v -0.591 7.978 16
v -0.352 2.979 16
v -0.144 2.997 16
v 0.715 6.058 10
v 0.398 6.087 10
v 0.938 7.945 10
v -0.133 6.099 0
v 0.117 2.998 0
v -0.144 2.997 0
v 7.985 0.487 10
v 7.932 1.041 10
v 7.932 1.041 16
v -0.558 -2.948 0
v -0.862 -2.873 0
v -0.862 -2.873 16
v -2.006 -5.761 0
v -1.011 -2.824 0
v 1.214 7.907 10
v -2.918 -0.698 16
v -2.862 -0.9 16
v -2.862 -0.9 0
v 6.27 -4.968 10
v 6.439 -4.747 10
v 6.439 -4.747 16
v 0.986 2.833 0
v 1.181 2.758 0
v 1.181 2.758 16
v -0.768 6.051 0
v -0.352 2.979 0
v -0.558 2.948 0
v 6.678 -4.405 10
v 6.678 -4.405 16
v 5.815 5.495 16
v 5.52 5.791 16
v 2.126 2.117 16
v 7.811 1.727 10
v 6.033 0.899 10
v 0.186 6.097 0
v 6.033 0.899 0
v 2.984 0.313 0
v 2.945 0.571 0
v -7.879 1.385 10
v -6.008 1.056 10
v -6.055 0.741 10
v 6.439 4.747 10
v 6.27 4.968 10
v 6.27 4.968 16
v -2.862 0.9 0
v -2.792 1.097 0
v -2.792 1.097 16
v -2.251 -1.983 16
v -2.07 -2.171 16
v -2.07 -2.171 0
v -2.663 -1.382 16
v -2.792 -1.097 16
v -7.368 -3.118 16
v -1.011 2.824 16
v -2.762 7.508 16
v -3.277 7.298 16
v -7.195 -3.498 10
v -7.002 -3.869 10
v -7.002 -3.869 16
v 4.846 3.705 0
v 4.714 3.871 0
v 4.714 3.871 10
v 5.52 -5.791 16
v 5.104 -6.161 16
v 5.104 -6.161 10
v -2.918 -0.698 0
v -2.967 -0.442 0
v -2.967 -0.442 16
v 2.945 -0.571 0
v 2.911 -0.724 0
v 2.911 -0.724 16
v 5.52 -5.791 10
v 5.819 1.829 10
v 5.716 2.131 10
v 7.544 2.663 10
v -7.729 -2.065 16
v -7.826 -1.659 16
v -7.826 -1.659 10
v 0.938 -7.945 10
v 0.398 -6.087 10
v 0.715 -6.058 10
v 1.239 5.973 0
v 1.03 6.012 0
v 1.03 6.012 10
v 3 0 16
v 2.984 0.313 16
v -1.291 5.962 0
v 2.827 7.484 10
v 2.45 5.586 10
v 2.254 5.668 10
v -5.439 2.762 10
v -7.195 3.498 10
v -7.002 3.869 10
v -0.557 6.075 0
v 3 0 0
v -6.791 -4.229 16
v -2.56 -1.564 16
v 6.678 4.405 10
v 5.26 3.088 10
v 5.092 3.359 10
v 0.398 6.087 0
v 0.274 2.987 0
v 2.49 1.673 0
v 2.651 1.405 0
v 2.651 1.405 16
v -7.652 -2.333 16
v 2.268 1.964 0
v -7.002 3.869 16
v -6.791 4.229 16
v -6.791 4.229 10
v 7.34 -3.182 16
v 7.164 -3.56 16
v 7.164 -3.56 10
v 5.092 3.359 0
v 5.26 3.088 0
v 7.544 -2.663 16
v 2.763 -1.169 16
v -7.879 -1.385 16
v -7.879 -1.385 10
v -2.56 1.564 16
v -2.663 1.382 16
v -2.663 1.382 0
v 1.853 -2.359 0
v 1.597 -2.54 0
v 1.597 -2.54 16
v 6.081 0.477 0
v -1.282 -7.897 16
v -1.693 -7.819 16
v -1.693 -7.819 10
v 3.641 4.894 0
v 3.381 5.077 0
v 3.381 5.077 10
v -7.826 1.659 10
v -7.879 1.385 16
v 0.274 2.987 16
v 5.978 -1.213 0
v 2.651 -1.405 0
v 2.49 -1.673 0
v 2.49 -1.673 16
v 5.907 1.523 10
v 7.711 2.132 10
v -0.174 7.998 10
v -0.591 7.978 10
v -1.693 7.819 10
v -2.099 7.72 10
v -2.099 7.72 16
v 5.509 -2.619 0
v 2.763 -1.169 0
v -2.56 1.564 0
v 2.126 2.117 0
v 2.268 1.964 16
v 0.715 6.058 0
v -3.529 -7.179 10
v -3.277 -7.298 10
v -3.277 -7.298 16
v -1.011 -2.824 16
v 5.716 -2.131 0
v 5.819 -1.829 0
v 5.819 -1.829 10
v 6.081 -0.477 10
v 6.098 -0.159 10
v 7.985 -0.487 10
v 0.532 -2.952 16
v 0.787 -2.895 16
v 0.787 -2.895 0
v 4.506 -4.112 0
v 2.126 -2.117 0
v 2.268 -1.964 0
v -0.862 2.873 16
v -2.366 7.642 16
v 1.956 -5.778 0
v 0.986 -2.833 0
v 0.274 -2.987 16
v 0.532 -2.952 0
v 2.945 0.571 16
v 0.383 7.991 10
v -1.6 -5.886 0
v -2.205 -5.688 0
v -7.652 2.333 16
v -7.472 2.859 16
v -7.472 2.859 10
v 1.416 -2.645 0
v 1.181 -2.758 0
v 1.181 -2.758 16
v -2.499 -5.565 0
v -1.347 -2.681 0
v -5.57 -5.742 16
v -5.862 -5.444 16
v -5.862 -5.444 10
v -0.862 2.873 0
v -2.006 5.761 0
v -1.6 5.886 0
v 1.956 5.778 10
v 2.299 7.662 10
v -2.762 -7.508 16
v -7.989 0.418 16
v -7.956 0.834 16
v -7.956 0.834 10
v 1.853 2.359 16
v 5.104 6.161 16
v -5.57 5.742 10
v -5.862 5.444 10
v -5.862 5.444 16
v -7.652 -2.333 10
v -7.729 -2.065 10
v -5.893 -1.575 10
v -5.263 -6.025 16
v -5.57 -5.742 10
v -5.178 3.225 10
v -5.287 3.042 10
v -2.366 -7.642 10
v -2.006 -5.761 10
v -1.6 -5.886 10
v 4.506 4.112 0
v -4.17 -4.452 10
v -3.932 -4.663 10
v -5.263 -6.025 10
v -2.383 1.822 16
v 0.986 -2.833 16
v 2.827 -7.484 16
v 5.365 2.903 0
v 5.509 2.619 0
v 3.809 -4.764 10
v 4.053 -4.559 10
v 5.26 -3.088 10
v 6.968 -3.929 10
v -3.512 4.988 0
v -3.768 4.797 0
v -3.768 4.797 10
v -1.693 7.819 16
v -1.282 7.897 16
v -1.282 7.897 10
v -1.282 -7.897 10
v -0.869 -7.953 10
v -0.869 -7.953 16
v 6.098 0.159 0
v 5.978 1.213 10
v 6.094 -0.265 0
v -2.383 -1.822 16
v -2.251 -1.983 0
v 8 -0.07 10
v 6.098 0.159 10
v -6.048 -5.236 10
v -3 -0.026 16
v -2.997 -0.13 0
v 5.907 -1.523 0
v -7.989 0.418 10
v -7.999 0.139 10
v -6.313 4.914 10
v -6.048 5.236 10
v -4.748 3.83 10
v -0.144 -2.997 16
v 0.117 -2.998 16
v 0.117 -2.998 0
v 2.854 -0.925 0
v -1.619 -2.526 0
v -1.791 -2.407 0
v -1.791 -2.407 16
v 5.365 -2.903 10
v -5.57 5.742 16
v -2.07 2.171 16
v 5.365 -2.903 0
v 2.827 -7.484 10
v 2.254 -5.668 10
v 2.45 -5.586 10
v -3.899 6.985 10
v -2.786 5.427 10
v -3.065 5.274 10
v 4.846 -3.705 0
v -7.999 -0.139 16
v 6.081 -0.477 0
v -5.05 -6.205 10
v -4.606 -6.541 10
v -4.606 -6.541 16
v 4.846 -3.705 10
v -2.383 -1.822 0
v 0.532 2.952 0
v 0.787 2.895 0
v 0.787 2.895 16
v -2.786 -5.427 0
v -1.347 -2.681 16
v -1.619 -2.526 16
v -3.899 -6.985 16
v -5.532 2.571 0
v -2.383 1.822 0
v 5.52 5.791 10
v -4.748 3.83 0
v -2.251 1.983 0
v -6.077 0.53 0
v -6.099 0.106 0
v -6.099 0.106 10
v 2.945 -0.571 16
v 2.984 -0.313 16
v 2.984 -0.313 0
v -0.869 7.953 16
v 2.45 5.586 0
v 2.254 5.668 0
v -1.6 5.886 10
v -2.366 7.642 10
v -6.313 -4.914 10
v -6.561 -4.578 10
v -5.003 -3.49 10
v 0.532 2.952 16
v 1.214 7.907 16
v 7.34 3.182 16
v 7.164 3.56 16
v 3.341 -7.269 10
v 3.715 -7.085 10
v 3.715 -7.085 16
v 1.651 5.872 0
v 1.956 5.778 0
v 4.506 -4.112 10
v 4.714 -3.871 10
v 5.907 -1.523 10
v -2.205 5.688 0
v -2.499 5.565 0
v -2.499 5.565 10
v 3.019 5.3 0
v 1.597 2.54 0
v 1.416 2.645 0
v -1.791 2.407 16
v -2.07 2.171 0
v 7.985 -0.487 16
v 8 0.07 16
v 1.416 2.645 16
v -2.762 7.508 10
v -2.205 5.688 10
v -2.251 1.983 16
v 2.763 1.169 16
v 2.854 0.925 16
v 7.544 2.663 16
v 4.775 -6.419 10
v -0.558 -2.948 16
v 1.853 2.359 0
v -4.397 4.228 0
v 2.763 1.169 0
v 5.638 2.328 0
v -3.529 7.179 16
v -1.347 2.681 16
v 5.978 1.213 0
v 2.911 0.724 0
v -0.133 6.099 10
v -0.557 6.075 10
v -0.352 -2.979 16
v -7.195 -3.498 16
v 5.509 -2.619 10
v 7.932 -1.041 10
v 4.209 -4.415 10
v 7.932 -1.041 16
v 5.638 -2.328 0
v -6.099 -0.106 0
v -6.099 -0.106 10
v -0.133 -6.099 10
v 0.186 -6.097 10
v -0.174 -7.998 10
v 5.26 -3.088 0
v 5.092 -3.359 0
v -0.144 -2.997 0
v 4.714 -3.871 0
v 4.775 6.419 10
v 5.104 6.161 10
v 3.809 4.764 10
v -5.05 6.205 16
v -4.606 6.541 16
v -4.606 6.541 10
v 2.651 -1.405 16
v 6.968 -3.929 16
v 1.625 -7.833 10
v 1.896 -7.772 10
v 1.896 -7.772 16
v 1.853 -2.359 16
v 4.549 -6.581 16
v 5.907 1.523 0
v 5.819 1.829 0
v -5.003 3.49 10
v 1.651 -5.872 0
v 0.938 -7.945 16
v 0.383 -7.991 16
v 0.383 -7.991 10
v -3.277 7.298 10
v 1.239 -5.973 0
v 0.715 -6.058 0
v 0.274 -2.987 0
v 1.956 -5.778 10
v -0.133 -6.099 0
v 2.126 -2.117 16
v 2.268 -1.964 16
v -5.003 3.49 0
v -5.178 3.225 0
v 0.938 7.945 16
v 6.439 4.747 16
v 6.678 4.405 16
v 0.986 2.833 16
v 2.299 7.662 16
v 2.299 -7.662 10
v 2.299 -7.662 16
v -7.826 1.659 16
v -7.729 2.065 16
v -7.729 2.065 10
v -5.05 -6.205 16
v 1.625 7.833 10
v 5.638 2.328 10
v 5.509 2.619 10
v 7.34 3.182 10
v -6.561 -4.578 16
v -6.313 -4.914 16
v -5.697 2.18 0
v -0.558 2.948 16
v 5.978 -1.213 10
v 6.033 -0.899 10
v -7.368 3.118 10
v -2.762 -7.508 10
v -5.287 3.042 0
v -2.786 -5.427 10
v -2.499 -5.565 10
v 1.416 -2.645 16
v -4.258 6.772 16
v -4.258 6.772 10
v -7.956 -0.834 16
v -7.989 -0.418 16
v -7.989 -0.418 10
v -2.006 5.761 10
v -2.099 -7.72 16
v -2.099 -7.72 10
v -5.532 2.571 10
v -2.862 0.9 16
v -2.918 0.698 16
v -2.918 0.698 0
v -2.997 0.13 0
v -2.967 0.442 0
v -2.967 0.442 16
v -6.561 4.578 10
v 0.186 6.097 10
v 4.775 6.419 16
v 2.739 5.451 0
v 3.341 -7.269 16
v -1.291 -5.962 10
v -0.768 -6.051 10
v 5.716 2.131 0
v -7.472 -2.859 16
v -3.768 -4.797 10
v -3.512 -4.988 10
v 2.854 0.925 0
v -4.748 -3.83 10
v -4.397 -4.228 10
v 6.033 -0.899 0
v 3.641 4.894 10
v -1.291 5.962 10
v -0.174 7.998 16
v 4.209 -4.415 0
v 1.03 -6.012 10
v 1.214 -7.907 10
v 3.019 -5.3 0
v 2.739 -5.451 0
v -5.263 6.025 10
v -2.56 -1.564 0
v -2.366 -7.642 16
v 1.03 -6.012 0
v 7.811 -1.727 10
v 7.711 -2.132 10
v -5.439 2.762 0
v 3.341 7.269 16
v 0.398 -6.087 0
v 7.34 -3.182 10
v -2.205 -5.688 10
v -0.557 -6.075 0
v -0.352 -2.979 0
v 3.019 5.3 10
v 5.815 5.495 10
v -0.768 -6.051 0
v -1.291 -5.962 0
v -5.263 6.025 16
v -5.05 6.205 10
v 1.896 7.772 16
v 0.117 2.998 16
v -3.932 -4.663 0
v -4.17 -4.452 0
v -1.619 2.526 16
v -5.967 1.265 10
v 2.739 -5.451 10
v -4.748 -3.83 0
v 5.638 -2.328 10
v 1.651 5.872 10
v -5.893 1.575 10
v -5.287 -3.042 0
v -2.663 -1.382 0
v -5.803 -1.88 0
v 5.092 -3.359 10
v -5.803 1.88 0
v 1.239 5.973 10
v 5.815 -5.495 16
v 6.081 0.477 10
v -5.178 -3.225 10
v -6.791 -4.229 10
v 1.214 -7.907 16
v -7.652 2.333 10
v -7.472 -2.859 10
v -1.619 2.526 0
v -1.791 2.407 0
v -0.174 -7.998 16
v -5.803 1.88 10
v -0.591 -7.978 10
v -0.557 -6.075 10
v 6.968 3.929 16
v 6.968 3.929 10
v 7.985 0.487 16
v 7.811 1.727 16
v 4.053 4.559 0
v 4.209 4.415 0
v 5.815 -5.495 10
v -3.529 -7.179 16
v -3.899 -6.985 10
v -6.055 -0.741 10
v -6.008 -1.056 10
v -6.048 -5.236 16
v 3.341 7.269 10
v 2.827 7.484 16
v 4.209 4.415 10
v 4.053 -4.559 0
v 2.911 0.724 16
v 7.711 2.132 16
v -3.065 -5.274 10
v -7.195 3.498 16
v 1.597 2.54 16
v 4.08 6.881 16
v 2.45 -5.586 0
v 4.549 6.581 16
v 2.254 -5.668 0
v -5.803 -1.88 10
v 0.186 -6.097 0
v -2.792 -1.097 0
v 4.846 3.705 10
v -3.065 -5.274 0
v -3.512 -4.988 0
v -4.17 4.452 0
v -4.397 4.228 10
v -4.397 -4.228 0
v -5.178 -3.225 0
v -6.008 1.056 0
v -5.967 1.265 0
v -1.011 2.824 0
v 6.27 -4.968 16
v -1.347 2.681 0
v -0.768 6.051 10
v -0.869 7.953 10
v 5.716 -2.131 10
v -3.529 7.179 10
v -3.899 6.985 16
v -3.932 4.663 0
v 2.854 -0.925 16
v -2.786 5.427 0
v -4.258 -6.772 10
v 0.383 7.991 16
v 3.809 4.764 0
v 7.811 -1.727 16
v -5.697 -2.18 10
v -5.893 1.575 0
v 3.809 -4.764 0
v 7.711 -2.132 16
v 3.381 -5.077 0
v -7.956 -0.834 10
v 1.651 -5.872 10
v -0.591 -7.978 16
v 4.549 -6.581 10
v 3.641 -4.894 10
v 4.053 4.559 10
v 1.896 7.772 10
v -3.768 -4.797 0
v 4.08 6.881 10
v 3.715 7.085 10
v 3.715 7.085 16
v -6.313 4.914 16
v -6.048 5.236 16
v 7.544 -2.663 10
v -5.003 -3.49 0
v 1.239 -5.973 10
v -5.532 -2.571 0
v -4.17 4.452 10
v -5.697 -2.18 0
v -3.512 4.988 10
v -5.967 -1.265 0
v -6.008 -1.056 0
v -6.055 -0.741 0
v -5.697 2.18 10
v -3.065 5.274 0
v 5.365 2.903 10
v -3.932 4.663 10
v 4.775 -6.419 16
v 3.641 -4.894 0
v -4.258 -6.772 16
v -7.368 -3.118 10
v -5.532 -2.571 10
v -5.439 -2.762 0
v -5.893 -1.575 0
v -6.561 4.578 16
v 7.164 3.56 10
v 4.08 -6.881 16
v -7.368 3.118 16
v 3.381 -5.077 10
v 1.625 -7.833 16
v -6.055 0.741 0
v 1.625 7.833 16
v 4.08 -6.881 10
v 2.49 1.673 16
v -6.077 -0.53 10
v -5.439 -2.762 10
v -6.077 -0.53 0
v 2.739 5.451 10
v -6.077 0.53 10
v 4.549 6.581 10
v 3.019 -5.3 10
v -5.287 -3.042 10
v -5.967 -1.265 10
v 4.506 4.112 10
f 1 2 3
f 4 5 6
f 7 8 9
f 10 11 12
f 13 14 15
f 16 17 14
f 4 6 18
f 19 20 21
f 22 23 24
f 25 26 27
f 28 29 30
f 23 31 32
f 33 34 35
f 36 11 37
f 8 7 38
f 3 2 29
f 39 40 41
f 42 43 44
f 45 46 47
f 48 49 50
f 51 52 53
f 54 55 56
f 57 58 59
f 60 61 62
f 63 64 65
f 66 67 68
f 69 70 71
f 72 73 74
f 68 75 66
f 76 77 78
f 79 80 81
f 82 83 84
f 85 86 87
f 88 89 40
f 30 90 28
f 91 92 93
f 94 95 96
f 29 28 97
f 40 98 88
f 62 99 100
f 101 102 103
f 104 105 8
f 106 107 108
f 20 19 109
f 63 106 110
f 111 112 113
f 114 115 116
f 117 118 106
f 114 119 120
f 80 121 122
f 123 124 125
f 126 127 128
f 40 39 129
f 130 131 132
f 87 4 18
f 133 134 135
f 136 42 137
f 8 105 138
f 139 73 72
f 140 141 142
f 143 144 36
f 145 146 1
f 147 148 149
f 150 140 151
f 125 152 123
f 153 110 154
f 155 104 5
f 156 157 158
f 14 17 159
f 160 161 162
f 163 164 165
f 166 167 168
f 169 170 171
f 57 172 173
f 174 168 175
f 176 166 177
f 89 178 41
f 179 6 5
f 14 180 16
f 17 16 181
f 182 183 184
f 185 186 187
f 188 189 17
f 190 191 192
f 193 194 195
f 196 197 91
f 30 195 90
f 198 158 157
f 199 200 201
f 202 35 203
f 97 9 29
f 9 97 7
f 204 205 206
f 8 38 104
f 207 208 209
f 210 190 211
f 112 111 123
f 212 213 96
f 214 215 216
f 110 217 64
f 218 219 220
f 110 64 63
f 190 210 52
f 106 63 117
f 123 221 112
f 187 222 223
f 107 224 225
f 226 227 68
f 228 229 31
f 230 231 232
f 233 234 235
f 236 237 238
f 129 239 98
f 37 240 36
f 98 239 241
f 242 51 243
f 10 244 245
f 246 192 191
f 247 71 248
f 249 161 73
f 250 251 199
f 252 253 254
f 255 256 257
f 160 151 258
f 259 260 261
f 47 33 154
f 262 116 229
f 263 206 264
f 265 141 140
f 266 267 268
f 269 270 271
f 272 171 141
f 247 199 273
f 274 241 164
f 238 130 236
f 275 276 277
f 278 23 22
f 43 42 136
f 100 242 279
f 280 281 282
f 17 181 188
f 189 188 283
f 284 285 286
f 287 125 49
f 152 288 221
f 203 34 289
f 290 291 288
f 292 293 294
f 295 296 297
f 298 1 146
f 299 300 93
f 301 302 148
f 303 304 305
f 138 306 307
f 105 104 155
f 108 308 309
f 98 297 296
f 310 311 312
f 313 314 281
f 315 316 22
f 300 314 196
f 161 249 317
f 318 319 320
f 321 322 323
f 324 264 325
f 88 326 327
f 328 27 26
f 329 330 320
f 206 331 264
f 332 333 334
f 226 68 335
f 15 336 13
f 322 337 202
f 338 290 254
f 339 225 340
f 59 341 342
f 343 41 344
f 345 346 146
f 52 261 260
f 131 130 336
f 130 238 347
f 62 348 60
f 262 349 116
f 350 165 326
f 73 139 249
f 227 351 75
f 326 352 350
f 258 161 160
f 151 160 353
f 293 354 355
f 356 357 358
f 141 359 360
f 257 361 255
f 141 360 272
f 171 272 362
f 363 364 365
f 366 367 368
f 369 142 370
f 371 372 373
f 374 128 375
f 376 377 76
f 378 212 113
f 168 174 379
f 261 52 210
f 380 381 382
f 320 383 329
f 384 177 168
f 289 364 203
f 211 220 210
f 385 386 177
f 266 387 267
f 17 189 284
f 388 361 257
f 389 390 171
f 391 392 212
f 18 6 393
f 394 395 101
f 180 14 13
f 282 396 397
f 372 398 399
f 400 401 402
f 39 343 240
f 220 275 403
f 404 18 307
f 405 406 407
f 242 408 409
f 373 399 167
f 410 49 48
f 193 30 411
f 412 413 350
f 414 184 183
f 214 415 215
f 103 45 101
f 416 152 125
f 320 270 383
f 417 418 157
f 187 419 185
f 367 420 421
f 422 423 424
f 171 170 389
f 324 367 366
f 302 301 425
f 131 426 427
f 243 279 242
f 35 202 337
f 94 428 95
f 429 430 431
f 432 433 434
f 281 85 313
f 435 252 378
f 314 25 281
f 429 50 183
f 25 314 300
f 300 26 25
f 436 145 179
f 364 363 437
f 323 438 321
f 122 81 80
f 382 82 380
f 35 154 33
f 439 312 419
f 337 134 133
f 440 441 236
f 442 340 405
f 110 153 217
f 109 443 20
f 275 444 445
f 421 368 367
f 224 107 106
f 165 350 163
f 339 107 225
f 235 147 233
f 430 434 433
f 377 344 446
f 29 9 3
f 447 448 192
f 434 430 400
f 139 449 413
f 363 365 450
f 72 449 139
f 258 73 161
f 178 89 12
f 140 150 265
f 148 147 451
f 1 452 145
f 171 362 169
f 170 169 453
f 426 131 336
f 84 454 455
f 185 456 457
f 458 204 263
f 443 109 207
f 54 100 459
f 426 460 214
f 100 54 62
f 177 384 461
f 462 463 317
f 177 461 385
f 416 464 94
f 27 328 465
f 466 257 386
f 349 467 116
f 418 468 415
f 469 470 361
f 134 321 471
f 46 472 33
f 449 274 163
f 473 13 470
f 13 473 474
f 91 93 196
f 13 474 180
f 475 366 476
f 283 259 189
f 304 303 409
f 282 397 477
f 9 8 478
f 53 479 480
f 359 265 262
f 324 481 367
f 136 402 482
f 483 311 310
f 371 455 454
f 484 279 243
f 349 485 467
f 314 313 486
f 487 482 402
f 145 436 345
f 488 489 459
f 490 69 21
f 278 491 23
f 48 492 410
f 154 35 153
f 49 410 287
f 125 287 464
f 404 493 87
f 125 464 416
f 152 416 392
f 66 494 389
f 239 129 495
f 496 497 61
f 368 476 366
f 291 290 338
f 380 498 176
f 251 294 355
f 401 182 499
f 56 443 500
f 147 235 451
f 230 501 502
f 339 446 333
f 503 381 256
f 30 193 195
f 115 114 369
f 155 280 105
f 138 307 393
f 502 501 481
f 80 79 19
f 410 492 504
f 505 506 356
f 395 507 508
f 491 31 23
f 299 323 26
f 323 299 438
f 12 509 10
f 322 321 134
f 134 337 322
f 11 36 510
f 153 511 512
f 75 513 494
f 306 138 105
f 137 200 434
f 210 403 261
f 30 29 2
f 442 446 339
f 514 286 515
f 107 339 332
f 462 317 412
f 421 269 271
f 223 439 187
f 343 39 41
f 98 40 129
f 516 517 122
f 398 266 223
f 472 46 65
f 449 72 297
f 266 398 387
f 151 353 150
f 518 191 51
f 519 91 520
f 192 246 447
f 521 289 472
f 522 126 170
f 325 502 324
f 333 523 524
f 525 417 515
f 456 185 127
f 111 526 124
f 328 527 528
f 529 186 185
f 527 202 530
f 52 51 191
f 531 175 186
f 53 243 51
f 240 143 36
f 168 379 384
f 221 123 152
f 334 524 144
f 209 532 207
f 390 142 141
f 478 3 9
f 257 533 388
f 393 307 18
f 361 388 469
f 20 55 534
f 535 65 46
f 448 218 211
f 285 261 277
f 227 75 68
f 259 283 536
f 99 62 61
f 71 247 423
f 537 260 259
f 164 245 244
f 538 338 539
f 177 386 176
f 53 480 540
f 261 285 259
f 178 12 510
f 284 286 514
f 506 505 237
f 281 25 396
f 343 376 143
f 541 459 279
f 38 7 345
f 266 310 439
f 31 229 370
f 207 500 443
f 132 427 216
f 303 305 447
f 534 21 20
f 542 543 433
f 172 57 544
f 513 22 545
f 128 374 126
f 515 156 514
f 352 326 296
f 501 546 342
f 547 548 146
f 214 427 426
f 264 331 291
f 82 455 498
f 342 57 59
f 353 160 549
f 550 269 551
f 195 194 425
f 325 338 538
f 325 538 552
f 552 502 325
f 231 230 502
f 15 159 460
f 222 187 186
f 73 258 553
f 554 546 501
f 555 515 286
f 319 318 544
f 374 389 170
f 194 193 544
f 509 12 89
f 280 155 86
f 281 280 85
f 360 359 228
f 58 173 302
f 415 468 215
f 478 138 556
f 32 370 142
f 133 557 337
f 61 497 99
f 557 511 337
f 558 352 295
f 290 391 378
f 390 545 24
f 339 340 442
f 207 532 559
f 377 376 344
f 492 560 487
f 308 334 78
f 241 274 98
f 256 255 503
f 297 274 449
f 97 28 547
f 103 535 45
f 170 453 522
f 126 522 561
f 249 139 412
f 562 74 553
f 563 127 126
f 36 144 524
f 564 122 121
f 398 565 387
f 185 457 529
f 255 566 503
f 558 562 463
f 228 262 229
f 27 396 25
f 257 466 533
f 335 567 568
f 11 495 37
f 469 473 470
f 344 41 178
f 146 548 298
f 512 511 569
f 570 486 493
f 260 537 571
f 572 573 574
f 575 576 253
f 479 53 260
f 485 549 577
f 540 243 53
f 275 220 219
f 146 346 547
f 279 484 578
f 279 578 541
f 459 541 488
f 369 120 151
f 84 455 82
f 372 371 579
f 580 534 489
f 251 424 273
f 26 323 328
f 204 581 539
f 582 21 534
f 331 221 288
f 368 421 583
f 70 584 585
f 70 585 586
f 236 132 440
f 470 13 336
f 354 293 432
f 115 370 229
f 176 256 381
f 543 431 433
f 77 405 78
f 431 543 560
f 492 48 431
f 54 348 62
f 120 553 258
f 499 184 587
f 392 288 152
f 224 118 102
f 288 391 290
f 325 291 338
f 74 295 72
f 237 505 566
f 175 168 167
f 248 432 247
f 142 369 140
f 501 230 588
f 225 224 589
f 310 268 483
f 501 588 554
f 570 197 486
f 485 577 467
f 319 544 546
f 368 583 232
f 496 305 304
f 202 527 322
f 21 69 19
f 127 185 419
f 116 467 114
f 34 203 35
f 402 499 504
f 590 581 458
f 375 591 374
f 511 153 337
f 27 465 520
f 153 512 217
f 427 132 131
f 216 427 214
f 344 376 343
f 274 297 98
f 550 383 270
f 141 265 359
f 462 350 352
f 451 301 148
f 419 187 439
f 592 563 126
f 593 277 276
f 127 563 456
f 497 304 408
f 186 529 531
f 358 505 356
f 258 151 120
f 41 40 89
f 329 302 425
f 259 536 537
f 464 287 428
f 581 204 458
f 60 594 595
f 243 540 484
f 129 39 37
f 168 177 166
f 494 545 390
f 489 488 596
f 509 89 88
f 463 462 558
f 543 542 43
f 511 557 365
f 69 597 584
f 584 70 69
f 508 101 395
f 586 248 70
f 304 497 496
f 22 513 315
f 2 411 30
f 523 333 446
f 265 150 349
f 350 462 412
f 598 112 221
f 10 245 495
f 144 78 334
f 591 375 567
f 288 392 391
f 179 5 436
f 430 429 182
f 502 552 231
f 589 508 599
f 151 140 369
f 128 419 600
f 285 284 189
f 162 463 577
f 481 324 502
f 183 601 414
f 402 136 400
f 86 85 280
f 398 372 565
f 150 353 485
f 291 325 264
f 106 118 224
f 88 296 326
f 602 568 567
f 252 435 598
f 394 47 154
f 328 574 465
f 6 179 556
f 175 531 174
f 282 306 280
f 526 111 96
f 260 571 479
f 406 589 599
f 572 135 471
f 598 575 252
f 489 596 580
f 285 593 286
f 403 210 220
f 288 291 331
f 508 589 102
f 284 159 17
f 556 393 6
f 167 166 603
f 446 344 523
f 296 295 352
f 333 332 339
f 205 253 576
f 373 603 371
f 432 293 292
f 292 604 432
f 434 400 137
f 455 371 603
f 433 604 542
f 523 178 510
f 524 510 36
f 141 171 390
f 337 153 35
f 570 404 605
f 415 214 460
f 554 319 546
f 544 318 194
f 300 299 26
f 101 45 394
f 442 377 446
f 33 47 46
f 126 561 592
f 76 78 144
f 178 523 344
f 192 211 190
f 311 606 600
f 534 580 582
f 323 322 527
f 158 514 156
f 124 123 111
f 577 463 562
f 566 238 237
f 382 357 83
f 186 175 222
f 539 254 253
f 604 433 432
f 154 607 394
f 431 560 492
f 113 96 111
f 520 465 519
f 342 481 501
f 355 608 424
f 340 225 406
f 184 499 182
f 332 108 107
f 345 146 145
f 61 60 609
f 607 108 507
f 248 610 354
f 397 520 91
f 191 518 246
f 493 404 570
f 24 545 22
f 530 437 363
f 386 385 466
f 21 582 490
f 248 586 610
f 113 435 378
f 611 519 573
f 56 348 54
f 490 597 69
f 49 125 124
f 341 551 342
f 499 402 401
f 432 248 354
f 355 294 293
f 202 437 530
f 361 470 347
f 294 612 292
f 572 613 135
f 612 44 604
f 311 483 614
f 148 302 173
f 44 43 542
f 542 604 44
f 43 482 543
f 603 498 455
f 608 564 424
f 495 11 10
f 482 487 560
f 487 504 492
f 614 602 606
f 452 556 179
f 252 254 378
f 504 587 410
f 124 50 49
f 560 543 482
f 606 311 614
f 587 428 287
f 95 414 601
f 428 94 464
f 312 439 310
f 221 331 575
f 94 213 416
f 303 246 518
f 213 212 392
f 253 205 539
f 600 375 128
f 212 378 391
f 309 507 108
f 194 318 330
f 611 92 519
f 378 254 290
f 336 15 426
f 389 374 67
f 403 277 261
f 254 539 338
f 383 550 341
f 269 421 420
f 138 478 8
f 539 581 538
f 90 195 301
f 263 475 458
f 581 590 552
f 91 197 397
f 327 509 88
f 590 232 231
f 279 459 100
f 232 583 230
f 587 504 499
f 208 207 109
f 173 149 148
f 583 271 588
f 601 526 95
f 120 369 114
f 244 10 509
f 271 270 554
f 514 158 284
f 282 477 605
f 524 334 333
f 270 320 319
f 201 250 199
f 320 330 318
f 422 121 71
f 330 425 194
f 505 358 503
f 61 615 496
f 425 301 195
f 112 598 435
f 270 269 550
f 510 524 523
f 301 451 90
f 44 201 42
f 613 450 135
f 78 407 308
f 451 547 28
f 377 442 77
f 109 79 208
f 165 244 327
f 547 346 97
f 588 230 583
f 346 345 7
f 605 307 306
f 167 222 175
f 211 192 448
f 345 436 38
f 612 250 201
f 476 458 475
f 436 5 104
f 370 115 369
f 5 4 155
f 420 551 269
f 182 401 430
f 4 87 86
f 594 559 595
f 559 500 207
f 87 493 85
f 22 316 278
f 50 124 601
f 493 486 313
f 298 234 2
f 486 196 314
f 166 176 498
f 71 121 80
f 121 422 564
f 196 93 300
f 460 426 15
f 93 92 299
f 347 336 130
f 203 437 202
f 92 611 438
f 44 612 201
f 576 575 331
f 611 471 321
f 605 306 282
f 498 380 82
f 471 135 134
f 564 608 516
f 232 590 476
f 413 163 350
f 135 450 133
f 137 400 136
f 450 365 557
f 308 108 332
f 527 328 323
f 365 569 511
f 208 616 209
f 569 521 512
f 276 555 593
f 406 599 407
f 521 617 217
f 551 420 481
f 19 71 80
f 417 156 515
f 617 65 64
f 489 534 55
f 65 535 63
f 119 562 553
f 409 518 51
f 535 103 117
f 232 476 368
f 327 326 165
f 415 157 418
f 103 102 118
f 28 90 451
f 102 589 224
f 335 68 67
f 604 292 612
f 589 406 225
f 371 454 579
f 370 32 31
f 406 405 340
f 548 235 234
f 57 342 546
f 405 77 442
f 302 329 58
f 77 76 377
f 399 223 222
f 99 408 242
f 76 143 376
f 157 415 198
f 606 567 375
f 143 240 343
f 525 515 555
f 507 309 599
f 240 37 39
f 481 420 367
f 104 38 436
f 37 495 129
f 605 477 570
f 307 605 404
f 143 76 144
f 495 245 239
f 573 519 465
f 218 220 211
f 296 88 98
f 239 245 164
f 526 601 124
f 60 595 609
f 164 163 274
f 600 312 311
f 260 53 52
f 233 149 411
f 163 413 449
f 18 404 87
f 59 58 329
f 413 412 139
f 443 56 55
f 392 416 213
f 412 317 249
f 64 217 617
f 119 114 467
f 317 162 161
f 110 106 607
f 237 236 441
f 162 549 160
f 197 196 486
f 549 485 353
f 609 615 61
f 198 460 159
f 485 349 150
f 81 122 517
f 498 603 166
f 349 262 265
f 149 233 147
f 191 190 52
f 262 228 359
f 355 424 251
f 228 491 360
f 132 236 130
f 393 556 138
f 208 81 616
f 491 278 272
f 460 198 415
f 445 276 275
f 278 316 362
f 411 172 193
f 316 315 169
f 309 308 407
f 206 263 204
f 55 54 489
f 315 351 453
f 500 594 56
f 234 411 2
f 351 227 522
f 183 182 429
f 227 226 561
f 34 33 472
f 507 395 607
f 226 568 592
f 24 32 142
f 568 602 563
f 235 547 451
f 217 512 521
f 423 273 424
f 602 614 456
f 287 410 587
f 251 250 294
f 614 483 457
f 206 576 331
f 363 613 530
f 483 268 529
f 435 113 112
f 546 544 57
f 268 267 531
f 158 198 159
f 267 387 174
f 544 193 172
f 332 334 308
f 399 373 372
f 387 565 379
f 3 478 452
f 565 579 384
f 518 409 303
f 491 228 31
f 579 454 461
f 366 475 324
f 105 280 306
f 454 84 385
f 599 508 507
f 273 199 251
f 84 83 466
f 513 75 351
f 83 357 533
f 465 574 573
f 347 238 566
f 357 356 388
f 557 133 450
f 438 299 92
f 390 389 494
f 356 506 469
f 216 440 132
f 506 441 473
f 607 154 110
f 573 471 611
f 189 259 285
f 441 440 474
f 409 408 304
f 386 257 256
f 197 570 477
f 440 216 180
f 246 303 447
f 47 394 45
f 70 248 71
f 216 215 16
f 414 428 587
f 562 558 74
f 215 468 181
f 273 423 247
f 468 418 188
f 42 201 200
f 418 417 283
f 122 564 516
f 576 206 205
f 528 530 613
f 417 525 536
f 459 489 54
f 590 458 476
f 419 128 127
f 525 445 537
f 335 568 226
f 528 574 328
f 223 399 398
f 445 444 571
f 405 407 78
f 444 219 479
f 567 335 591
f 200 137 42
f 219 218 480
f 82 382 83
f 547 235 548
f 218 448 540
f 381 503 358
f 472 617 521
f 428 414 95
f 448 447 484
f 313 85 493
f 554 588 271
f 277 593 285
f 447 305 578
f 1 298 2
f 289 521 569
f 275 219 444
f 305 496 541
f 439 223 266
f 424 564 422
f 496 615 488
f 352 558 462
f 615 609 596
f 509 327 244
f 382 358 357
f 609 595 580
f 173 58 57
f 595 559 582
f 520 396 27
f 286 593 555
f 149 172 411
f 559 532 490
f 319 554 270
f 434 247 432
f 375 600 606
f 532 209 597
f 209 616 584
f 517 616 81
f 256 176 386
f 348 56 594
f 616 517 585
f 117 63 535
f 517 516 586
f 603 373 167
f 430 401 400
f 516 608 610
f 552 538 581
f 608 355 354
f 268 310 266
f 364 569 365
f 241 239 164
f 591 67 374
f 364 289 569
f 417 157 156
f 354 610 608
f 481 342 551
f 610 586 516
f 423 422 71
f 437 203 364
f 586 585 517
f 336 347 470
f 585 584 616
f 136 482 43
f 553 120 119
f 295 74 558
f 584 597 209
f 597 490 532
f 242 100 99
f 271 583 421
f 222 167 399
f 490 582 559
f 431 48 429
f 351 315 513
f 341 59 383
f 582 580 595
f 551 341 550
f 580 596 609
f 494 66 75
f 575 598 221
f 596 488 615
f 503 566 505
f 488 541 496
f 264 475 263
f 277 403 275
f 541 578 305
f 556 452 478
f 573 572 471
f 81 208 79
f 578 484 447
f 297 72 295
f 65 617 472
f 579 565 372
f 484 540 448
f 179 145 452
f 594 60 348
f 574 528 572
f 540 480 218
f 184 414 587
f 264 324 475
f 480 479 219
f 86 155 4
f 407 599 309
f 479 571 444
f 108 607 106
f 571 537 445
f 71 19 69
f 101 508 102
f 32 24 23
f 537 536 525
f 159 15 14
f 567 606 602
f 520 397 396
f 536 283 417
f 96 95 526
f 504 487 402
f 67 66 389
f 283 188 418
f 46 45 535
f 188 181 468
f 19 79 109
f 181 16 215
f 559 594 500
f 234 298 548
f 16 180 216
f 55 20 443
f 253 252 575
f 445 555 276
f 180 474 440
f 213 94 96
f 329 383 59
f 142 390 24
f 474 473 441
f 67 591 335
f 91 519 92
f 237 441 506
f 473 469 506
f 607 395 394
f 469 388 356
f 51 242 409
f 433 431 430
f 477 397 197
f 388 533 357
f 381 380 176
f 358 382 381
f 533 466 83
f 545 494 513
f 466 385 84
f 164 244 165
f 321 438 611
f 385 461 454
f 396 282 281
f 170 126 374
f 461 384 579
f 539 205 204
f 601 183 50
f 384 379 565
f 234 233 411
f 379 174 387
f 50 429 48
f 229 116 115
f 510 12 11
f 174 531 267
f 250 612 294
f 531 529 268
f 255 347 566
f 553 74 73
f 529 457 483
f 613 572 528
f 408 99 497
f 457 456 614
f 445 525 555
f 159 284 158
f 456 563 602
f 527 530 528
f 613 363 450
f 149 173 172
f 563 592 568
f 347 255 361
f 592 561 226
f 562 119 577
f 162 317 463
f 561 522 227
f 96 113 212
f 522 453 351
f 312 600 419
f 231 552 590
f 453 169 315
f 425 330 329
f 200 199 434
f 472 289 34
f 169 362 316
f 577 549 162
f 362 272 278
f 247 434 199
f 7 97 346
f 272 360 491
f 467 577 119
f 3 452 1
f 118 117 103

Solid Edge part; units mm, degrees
sketch "Sketch1" plane through (0, 0, 0) normal (0, 0, 1) x (1, 0, 0)
  circle A0 centre (0, 0) radius 6.1
extrude "Protrusion1" add sketch "Sketch1" along normal blind 10
sketch "Sketch2" plane through (0, 0, 10) normal (0, 0, 1) x (1, 0, 0)
  circle A0 centre (0, 0) radius 8
extrude "ExtrudedProtrusion_2" add sketch "Sketch2" along normal blind 6
sketch "Sketch3" plane through (0, 0, 16) normal (0, 0, 1) x (1, 0, 0)
  circle A0 centre (0, 0) radius 3
  dimension "D1" = 6
  dimension "D2" = 16
extrude "Cutout1" cut sketch "Sketch3" against normal through all
properties material "ABS Plastic, medium impact"
